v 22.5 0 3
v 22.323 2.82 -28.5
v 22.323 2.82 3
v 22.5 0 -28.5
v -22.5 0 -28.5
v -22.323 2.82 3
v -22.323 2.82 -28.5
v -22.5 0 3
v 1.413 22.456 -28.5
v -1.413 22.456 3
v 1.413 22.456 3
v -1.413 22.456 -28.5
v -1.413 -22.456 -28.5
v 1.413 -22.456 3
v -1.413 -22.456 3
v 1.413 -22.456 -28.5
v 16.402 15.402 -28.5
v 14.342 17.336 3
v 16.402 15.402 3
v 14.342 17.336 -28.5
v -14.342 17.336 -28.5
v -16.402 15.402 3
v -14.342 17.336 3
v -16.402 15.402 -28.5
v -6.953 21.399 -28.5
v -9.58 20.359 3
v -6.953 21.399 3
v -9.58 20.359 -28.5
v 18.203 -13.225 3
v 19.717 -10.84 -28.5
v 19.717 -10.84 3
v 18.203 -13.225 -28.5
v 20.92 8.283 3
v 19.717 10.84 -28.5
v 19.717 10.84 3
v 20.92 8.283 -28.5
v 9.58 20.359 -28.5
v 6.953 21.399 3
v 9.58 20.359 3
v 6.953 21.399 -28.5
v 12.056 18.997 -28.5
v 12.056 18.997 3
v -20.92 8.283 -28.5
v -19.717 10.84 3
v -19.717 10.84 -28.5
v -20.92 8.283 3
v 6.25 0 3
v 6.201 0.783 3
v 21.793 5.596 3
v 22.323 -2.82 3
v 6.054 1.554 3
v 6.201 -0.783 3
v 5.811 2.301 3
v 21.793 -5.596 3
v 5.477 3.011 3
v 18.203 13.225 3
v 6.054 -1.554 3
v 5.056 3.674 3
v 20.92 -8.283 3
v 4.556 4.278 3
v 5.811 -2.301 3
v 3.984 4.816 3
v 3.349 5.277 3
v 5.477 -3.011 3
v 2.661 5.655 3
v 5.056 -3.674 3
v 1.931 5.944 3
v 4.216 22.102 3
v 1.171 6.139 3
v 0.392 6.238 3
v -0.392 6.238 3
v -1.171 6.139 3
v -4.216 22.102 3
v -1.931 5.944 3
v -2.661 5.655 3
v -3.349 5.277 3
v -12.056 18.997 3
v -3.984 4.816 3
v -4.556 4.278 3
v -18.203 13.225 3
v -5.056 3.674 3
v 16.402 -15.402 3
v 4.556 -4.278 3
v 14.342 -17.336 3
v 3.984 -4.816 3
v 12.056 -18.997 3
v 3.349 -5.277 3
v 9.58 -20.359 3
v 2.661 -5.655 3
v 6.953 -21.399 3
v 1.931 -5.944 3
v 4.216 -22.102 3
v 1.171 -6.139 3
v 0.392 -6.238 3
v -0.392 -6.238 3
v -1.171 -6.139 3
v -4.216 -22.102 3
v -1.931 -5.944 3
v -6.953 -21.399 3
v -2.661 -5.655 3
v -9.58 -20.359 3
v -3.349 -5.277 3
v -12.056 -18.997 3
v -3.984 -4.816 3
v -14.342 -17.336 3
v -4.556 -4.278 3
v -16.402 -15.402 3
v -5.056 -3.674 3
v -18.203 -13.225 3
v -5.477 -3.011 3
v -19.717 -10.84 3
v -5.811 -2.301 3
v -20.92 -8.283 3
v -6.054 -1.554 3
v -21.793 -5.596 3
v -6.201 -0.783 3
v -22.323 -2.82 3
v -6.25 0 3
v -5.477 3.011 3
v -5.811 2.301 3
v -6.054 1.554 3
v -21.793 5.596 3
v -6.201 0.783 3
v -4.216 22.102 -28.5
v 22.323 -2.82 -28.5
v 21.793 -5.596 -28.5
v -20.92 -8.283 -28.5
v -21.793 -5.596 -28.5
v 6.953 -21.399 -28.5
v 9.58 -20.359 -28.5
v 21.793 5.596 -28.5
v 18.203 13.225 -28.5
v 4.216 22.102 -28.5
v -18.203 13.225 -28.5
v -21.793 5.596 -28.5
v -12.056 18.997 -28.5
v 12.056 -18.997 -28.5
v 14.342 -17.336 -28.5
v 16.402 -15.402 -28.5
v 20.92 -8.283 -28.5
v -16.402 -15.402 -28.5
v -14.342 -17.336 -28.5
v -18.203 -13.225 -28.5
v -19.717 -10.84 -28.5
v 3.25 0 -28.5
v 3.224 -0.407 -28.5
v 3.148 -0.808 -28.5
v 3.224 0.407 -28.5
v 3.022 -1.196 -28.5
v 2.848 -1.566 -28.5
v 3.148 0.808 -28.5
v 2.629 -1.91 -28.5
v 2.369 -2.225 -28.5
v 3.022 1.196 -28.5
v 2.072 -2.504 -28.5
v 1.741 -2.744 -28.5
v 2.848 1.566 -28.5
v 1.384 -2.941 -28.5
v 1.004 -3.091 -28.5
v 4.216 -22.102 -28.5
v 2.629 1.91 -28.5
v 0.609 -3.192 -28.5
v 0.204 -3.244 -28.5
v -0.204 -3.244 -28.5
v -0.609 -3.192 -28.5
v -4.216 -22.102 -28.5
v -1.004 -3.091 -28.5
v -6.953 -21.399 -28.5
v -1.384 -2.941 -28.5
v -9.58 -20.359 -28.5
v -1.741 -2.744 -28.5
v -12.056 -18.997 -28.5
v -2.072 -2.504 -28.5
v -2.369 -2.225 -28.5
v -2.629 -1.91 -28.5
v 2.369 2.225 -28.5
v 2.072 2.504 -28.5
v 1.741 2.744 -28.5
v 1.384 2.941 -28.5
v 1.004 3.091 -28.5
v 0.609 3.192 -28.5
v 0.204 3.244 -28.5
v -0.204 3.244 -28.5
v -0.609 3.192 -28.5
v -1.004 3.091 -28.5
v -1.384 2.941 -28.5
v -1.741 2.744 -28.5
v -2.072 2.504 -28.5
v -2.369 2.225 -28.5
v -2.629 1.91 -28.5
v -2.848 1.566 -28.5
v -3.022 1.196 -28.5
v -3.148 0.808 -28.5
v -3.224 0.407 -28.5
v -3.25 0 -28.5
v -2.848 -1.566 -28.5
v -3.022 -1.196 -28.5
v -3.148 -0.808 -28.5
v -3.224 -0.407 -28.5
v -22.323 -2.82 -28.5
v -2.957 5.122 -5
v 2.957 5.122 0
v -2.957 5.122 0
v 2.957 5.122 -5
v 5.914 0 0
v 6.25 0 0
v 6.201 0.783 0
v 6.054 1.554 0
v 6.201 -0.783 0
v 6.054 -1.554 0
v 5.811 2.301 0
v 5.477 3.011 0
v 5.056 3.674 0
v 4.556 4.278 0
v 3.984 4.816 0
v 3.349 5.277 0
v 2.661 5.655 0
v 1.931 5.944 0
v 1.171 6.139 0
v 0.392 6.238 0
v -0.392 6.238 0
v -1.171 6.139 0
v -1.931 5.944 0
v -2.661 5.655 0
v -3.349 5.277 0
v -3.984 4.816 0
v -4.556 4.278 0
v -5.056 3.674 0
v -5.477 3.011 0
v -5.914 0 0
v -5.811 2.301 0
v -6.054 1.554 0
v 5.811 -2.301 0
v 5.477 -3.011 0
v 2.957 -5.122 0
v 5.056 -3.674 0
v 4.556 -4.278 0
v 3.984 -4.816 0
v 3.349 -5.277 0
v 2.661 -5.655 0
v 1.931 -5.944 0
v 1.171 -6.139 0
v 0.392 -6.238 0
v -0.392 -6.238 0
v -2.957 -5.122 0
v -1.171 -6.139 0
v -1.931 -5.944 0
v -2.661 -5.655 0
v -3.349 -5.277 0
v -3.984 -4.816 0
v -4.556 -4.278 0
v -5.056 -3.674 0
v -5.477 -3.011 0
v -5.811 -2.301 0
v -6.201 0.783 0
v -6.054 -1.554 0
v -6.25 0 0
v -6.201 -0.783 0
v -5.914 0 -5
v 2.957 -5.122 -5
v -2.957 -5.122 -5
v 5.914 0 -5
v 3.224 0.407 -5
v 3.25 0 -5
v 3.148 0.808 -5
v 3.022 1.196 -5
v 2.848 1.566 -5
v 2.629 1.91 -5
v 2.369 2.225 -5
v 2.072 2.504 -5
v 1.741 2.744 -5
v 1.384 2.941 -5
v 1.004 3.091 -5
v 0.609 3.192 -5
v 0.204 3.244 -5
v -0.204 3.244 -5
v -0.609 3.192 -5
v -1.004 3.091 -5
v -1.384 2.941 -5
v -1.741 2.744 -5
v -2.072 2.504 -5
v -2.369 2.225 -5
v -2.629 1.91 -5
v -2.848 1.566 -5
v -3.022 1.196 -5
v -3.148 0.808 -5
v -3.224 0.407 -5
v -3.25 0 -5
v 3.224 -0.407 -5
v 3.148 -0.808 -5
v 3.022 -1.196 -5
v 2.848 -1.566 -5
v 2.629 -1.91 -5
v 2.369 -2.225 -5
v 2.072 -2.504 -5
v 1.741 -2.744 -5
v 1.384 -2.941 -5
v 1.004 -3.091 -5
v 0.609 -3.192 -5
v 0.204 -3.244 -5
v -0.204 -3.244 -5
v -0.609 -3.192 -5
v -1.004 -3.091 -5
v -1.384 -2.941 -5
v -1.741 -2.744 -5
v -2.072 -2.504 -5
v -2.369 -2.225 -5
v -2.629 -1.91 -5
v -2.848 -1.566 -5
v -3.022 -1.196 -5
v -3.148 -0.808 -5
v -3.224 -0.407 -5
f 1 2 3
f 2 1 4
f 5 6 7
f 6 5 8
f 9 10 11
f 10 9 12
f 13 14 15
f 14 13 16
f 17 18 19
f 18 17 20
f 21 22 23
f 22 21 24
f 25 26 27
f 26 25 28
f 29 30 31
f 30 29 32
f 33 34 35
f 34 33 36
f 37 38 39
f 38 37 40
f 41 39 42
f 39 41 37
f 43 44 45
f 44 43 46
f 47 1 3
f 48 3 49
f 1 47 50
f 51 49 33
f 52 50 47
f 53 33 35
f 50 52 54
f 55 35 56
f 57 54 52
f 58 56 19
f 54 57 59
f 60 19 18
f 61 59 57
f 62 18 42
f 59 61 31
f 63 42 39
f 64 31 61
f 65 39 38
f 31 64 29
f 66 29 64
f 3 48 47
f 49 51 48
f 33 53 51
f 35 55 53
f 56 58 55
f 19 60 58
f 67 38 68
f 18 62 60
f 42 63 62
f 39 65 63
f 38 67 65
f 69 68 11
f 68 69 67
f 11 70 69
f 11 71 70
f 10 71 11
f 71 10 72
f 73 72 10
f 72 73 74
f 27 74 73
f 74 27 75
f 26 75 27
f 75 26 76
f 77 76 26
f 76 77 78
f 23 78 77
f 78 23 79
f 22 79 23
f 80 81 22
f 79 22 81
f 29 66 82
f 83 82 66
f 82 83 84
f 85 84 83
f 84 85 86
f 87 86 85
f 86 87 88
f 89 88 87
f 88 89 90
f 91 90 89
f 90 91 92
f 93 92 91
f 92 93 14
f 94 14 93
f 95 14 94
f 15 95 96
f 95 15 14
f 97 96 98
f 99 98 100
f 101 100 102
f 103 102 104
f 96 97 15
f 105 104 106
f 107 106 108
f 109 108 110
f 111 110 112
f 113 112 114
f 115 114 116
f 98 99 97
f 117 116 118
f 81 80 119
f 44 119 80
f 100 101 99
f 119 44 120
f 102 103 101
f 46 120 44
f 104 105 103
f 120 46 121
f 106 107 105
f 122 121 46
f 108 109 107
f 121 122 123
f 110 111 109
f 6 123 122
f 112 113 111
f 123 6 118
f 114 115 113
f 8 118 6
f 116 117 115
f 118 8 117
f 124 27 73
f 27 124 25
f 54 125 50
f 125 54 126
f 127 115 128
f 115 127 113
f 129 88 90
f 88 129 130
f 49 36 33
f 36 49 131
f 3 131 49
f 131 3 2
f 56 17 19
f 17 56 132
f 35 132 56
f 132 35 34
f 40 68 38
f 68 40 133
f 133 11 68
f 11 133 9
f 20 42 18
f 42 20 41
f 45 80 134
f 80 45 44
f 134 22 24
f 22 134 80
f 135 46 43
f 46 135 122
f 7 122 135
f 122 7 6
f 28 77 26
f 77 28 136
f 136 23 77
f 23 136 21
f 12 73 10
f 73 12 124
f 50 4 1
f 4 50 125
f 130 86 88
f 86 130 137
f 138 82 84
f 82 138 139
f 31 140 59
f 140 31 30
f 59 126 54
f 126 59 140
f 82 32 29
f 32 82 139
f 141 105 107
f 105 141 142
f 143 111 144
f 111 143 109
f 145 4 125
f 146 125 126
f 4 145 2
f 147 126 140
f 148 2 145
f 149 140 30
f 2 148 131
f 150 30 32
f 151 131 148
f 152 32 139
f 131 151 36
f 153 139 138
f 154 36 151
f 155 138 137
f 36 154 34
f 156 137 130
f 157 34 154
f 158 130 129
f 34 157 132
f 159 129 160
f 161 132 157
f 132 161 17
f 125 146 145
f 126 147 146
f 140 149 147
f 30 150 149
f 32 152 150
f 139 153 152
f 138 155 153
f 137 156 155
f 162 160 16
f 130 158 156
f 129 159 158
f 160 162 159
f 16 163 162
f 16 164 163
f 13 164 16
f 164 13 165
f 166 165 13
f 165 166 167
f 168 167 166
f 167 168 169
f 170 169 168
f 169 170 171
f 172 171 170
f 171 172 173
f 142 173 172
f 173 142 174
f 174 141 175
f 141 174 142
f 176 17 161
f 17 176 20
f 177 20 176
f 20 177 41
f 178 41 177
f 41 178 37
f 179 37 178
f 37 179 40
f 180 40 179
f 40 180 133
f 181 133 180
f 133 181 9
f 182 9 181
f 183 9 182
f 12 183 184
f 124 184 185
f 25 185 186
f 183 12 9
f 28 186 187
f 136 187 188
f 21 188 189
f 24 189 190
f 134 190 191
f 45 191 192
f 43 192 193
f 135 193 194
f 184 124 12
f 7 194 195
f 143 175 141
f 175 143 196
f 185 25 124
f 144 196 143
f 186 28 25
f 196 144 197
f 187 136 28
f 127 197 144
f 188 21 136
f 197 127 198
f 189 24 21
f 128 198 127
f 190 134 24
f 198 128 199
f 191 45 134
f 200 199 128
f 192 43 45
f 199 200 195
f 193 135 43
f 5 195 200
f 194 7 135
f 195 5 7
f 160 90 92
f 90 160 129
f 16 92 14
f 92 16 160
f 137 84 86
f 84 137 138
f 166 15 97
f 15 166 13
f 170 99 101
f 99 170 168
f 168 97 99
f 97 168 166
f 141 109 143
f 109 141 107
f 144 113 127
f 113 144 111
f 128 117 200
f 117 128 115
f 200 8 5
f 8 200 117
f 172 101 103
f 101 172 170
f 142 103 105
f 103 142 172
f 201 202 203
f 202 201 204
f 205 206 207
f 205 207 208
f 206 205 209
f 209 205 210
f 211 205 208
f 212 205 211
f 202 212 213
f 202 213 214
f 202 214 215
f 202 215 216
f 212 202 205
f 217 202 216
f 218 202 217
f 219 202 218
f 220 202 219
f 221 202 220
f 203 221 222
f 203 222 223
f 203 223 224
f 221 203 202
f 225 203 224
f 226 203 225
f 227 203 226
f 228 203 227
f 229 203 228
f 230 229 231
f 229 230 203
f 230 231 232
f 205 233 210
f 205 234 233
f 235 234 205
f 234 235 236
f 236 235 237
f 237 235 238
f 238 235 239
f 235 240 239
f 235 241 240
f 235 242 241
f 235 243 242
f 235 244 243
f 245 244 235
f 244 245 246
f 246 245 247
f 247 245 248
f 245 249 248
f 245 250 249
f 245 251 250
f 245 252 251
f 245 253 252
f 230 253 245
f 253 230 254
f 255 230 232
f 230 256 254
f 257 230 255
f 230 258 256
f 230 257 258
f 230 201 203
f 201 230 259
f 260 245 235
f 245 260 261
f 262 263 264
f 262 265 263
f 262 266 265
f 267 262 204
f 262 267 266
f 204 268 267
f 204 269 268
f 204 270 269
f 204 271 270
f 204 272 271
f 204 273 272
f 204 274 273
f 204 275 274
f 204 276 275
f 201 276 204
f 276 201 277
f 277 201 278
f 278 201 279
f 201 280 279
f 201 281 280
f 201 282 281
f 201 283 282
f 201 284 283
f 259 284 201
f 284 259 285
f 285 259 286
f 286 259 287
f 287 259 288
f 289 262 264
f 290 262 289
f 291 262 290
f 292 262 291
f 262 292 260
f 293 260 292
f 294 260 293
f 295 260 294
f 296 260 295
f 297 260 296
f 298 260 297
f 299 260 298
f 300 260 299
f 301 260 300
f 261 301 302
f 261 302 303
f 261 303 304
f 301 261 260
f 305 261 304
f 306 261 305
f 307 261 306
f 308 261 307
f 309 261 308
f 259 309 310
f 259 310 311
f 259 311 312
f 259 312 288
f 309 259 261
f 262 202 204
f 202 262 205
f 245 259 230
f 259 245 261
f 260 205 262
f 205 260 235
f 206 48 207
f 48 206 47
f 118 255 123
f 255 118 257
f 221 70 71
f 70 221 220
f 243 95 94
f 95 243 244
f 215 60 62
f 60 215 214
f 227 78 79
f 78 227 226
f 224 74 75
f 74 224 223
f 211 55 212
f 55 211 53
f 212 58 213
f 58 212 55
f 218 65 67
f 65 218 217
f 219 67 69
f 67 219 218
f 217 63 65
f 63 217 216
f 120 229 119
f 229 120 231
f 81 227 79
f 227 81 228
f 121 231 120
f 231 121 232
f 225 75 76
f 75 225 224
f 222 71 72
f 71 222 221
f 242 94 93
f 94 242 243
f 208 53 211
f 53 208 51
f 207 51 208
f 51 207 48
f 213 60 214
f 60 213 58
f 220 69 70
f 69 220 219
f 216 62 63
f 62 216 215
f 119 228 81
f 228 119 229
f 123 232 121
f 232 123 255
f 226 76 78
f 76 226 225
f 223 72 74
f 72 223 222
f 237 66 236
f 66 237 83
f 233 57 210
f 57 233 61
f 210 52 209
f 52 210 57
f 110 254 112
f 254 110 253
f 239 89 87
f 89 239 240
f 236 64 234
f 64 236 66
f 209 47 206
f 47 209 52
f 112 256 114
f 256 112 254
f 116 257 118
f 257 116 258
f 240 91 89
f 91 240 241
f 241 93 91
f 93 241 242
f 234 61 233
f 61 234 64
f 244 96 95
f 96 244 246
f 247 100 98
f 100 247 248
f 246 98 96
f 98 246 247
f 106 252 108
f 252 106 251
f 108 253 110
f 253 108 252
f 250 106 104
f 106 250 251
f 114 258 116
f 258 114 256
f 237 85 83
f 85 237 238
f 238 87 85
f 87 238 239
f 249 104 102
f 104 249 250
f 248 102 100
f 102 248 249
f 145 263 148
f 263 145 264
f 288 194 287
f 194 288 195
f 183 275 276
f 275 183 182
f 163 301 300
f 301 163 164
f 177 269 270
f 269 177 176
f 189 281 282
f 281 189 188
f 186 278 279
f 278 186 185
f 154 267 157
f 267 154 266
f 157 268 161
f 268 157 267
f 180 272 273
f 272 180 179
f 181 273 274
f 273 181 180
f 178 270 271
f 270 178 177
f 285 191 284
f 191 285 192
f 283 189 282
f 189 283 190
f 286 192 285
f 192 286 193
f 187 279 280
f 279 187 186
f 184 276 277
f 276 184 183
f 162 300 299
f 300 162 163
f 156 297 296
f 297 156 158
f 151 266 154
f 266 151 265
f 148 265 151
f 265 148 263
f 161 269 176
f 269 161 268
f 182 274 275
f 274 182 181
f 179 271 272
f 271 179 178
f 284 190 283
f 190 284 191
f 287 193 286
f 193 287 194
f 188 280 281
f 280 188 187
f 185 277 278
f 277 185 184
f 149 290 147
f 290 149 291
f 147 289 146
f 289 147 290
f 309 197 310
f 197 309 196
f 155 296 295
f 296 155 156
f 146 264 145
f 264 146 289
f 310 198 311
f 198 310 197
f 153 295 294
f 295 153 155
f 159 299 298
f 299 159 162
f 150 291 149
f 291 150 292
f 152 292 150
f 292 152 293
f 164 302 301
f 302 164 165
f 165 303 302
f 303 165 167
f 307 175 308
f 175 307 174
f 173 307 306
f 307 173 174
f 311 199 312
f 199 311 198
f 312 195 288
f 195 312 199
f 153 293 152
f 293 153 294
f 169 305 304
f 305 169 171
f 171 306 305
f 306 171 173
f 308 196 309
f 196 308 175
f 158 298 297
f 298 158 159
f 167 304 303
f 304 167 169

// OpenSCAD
$fn = 50;

difference() {
	union() {
		translate(v = [0, 0, -28.5]) {
			cylinder(h = 31.5, r = 22.5);
		}
		#translate(v = [0, 0, -30.0]) {
			cylinder(h = 30, r = 2.875);
		}
	}
	union() {
		translate(v = [0, 0, 0]) {
			rotate(a = [0, 0, 0]) {
				difference() {
					union() {
						translate(v = [0, 0, -5]) {
							linear_extrude(height = 5) {
								polygon(points = [[5.914249999999999, 0.0], [2.957125, 5.1218907443321156], [-2.9571249999999982, 5.1218907443321156], [-5.914249999999999, 7.242867331857232e-16], [-2.9571250000000022, -5.121890744332115], [2.9571249999999956, -5.121890744332118]]);
							}
						}
					}
					union();
				}
			}
		}
		#cylinder(h = 3, r = 6.25);
		#translate(v = [0, 0, -100.0]) {
			cylinder(h = 200, r = 3.25);
		}
	}
}
